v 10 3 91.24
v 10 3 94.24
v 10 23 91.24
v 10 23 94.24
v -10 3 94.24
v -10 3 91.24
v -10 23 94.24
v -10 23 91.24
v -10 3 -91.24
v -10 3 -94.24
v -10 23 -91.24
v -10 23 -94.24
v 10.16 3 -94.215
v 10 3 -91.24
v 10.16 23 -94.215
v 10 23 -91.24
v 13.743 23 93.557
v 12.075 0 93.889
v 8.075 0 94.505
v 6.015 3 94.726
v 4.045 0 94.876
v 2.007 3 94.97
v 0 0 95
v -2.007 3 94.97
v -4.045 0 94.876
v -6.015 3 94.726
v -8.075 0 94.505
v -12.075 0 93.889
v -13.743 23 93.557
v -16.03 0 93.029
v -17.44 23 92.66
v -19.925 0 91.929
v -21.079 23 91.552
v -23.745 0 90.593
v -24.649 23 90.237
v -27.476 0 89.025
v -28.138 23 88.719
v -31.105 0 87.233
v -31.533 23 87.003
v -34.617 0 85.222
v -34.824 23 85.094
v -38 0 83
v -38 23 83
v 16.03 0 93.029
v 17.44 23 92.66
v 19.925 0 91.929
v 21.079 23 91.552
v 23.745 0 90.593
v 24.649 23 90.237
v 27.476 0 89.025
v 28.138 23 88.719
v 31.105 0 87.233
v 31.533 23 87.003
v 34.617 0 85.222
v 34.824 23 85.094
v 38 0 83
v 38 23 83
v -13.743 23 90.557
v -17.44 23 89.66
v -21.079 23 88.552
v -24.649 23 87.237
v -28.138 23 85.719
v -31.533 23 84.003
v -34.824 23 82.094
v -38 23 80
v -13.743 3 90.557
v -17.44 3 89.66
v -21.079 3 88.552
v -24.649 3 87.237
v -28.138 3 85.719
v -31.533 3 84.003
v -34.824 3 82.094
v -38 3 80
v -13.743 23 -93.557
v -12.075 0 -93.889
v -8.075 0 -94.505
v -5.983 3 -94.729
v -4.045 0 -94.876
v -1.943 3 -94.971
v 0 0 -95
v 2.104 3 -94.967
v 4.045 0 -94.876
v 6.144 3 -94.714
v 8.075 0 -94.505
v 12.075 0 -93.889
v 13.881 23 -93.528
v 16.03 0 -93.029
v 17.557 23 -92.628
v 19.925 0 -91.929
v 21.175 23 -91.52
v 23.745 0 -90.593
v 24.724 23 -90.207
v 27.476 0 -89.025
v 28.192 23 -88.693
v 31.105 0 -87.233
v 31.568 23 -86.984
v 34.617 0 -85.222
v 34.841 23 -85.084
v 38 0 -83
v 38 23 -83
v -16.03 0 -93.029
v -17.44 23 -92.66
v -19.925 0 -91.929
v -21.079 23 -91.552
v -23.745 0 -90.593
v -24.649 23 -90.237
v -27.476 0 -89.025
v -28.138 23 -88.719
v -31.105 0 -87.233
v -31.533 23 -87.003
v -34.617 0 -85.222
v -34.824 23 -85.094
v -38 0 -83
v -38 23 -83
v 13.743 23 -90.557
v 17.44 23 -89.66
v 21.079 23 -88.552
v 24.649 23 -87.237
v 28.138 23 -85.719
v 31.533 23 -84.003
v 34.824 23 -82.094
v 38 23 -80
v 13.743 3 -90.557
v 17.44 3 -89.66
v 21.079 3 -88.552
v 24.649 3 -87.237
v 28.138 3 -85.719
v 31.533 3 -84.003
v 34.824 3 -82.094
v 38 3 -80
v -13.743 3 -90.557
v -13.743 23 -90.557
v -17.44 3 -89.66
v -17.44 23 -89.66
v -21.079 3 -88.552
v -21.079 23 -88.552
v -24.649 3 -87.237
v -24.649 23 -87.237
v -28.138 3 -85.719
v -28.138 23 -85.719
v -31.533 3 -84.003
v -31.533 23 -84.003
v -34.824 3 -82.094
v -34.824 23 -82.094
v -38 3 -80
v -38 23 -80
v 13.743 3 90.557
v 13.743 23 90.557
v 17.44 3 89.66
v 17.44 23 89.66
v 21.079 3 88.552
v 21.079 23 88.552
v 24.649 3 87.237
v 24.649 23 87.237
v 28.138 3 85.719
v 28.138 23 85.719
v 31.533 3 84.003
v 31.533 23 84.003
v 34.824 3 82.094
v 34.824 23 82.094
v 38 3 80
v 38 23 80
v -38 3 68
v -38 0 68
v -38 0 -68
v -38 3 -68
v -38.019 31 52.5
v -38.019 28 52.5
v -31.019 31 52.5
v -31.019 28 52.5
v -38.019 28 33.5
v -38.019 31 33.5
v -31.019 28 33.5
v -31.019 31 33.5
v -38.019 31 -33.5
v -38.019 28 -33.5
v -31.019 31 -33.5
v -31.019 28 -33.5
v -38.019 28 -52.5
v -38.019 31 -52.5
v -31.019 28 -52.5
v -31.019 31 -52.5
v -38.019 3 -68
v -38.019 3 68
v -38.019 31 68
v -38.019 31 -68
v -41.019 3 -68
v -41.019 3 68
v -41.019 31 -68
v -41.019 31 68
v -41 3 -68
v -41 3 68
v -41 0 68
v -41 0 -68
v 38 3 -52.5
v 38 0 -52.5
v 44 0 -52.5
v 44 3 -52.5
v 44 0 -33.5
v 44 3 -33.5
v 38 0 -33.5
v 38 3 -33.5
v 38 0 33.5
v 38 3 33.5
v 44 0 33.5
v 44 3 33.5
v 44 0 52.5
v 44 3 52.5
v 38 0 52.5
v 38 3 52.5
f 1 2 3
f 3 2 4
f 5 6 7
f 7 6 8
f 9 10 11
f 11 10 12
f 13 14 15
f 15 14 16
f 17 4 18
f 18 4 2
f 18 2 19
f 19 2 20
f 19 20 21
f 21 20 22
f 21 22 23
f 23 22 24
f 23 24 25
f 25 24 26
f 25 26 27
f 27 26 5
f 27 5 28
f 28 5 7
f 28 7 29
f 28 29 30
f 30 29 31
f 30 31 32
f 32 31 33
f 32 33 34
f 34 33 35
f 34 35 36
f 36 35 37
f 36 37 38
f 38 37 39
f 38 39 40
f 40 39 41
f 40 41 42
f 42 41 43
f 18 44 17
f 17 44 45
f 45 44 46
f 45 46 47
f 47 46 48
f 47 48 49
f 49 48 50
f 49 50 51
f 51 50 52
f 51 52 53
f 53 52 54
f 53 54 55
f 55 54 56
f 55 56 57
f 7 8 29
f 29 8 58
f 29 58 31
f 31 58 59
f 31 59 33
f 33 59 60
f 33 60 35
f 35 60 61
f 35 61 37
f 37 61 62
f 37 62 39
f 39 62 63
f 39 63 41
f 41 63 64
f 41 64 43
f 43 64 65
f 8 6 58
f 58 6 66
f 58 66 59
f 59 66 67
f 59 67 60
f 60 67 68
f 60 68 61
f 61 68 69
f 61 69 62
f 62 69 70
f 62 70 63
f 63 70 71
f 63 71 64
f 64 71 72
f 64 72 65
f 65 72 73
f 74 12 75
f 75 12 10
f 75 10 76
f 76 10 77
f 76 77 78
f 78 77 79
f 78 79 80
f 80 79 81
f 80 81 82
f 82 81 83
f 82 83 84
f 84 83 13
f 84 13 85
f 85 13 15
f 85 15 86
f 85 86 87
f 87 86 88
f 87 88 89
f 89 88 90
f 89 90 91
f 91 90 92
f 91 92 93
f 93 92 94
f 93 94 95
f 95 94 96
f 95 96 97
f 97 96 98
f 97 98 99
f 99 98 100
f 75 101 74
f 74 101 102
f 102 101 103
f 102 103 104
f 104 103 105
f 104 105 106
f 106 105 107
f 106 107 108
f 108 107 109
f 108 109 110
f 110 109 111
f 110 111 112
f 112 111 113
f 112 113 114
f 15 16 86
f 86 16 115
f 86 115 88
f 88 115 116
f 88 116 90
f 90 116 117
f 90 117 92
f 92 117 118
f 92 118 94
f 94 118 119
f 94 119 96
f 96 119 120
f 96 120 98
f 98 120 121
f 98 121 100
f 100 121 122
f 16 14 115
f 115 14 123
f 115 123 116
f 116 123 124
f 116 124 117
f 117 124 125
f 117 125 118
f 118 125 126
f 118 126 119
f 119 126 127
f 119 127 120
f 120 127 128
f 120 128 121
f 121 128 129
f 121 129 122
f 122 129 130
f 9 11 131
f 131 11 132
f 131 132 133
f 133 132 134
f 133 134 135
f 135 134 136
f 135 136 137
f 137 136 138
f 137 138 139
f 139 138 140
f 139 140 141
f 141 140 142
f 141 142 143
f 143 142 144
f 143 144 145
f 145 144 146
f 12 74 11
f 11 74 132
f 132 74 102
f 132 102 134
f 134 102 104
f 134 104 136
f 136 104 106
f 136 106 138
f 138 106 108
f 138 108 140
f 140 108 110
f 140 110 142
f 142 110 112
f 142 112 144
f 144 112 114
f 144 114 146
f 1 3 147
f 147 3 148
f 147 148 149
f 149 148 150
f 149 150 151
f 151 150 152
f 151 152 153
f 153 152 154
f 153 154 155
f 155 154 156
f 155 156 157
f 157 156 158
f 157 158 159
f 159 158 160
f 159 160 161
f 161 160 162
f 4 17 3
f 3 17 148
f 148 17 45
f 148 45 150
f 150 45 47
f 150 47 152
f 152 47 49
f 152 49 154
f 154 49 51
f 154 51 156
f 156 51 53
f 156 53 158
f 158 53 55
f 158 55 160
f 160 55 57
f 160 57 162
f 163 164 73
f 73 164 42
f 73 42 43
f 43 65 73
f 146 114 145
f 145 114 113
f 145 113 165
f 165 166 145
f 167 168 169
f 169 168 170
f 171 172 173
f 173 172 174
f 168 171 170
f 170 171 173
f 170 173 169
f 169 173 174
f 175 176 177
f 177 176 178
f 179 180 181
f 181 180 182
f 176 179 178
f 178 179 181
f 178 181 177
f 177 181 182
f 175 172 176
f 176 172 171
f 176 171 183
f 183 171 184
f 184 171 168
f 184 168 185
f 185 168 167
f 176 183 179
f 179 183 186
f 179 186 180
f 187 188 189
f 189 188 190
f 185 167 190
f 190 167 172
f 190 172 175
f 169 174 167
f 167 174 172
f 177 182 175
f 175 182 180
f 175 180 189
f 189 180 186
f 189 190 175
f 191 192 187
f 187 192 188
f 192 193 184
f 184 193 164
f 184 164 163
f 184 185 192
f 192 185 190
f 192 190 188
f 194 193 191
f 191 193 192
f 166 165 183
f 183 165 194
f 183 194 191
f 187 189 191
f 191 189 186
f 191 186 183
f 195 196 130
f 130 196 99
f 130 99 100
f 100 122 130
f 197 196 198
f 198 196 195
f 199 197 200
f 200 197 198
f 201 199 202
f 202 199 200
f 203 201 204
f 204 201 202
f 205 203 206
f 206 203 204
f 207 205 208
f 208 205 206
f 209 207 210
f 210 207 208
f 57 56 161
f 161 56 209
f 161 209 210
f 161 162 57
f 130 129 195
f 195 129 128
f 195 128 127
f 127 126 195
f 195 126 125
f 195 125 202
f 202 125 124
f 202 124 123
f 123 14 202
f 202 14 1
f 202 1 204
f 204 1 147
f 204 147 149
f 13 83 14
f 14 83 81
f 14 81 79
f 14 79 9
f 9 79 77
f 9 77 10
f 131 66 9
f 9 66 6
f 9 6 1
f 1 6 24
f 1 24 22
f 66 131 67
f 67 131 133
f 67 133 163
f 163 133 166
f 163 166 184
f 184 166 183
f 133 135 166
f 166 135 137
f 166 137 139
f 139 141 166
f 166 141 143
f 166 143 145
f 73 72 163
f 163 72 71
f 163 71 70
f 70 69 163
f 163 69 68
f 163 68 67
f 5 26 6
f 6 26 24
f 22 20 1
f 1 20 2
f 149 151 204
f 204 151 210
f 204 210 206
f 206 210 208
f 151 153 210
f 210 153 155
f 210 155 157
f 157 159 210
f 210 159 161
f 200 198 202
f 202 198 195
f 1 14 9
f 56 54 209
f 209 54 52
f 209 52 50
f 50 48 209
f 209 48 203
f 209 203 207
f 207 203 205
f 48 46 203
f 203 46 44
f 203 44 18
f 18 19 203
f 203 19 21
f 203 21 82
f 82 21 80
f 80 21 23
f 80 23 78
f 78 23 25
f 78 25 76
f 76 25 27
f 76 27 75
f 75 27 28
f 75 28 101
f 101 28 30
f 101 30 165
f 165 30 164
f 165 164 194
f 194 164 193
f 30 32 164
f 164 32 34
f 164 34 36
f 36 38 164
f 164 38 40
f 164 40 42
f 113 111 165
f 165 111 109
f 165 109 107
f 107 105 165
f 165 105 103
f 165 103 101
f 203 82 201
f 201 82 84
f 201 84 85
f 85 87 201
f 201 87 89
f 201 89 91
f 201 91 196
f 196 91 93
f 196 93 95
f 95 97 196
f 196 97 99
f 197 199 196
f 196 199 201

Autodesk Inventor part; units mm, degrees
ref_plane "YZ Plane" through (0, 0, 0) normal (1, 0, 0) x (0, 1, 0)
ref_plane "XZ Plane" through (0, 0, 0) normal (0, 1, 0) x (-1, 0, 0)
ref_plane "XY Plane" through (0, 0, 0) normal (0, 0, 1) x (1, 0, 0)
sketch "Sketch1" plane through (0, 0, 0) normal (0, 1, 0) x (-1, 0, 0)
  line L0 (38, 68) -> (38, -68)
  line L1 (-38, -68) -> (-38, 68)
  line L2 (-38, 68) -> (38, -68) construction
  line L3 (38, 68) -> (-38, -68) construction
  line L4 (0, -68) -> (0, -80)
  arc A0 (-38, -68) -> (38, -68) centre (0, -13.8333) ccw
  arc A1 (38, 68) -> (-38, 68) centre (0, 13.8333) ccw
  line L5 (38, -68) -> (38, 68)
  line L6 (-38, 68) -> (-38, 53)
  line L7 (-38, -68) -> (-38, -53)
  line L8 (-38, -53) -> (-38, -34)
  line L9 (-38, 53) -> (-38, 34)
  line L10 (38, -68) -> (38, 68)
  line L11 (38, 68) -> (41, 68)
  line L12 (41, 68) -> (41, -68)
  line L13 (41, -68) -> (38, -68)
  line L14 (38, -68) -> (38, 68)
  line L15 (-38, 68) -> (-38, 53)
  line L16 (-38, 34) -> (-38, 53)
  line L17 (-38, -68) -> (-38, -53)
  line L18 (-38, -34) -> (-38, -53)
  line L19 (-38, 68) -> (-38, 52.5)
  line L20 (-38, 52.5) -> (-44, 52.5)
  line L21 (-44, 52.5) -> (-44, 33.5)
  line L22 (-44, 33.5) -> (-38, 33.5)
  line L23 (-38, 33.5) -> (-38, 52.5)
  line L24 (-38, 33.5) -> (-38, -33.5)
  line L25 (-38, -33.5) -> (-44, -33.5)
  line L26 (-44, -33.5) -> (-44, -52.5)
  line L27 (-44, -52.5) -> (-38, -52.5)
  line L28 (-38, -52.5) -> (-38, -33.5)
  point P0 (0, 0)
  dimension "d129" = 3
extrude "taban" add sketch "Sketch1" along normal blind 3
sketch "Sketch2" plane through (0, 3, 0) normal (0, 1, 0) x (1, 0, 0)
  line L0 (-41.0189, -68) -> (-38.0189, -68)
  line L1 (-38.0189, -68) -> (-38.0189, 68)
  line L2 (-38.0189, 68) -> (-41.0189, 68)
  line L3 (-41.0189, 68) -> (-41.0189, -68)
  point P0 (0, 0)
  dimension "d45" = 3
  dimension "d46" = 136
extrude "direk" add sketch "Sketch2" along normal blind 28
sketch "Sketch5" plane through (-38.0189, 3, 68) normal (1, 0, 0) x (0, 0, -1)
  line L0 (15.5, 28) -> (34.5, 28)
  line L1 (34.5, 28) -> (34.5, 25)
  line L2 (34.5, 25) -> (15.5, 25)
  line L3 (15.5, 25) -> (15.5, 28)
  line L4 (101.5, 28) -> (120.5, 28)
  line L5 (120.5, 28) -> (120.5, 25)
  line L6 (120.5, 25) -> (101.5, 25)
  line L7 (101.5, 25) -> (101.5, 28)
  point P0 (68, -3)
  point P1 (0, 28)
extrude "sikigecme" add sketch "Sketch5" along normal blind 7
sketch "Sketch6" plane through (0, 3, 0) normal (0, 1, 0) x (1, 0, 0)
  line L0 (-41, -68) -> (-38, -68) projected
  line L1 (-38, -68) -> (-38, -83)
  arc A0 (-38, -68) -> (38, -68) centre (0, -13.8333) ccw projected
  line L2 (38, -68) -> (38, -83)
  arc A1 (-38, -83) -> (38, -83) centre (0, -28.8333) ccw
  arc A2 (38, 68) -> (-38, 68) centre (0, 13.8333) ccw projected
  line L3 (-38, 68) -> (-38, 83)
  line L4 (38, 68) -> (38, 83)
  arc A3 (38, 83) -> (-38, 83) centre (0, 28.8333) ccw
  arc A4 (-38, -68) -> (38, -68) centre (0, -13.8333) ccw
  arc A5 (38, 68) -> (-38, 68) centre (0, 13.8333) ccw
  point P0 (0, 0)
  dimension "d66" = 15
  dimension "d67" = 15
  dimension "d99" = 15
  dimension "d100" = 15
extrude "fazlalik" add sketch "Sketch6" against normal blind 3
sketch "Sketch7" plane through (0, 3, 0) normal (0, 1, 0) x (1, 0, 0)
  arc A0 (-38, -83) -> (38, -83) centre (0, -28.8333) ccw projected
  line L0 (-38, -83) -> (-38, -80)
  line L1 (38, -83) -> (38, -80)
  arc A1 (-38, -80) -> (38, -80) centre (0, -25.8333) ccw
  arc A2 (-38, -83) -> (38, -83) centre (0, -28.8333) ccw
  arc A3 (38, 83) -> (-38, 83) centre (0, 28.8333) ccw projected
  line L2 (-38, 83) -> (-38, 80)
  line L3 (-38, 68) -> (-38, 83) projected
  line L4 (38, 52.5) -> (38, 83) projected
  line L5 (38, 83) -> (38, 80)
  arc A4 (38, 80) -> (-38, 80) centre (0, 25.8333) ccw
  arc A5 (38, 83) -> (-38, 83) centre (0, 28.8333) ccw
  point P0 (0, 0)
  point P1 (38, 53)
  point P2 (38, -34)
  dimension "d74" = 3
  dimension "d75" = 3
  dimension "d102" = 3
  dimension "d103" = 3
extrude "yandirek" add sketch "Sketch7" along normal blind 20
sketch "Sketch9" plane through (0, 3, 0) normal (0, 1, 0) x (1, 0, 0)
  arc A0 (-38, -83) -> (38, -83) centre (0, -28.8333) ccw projected
  line L0 (-10, -94.24) -> (-10, -91.24)
  arc A1 (-38, -80) -> (38, -80) centre (0, -25.8333) ccw projected
  line L1 (10, -94.24) -> (10, -91.24)
  arc A2 (-10, -94.24) -> (10, -94.24) centre (0, -28.8333) ccw
  arc A3 (-10, -91.24) -> (10, -91.24) centre (0, -25.8333) ccw
  arc A4 (38, 83) -> (-38, 83) centre (0, 28.8333) ccw projected
  line L2 (10.1599, 94.2153) -> (10, 91.24)
  arc A5 (38, 80) -> (-38, 80) centre (0, 25.8333) ccw projected
  line L3 (-10, 94.24) -> (-10, 91.24)
  arc A6 (10, 91.24) -> (-10, 91.24) centre (0, 25.8333) ccw
  arc A7 (10.1599, 94.2153) -> (-10, 94.24) centre (0, 28.8333) ccw
  point P0 (0, 0)
  point P1 (10, -91.24)
  point P2 (-10, 94.24)
extrude "yanbosluk" cut sketch "Sketch9" along normal blind 20
properties part number "VR_Telefon_Tutucu_3DPrint"
